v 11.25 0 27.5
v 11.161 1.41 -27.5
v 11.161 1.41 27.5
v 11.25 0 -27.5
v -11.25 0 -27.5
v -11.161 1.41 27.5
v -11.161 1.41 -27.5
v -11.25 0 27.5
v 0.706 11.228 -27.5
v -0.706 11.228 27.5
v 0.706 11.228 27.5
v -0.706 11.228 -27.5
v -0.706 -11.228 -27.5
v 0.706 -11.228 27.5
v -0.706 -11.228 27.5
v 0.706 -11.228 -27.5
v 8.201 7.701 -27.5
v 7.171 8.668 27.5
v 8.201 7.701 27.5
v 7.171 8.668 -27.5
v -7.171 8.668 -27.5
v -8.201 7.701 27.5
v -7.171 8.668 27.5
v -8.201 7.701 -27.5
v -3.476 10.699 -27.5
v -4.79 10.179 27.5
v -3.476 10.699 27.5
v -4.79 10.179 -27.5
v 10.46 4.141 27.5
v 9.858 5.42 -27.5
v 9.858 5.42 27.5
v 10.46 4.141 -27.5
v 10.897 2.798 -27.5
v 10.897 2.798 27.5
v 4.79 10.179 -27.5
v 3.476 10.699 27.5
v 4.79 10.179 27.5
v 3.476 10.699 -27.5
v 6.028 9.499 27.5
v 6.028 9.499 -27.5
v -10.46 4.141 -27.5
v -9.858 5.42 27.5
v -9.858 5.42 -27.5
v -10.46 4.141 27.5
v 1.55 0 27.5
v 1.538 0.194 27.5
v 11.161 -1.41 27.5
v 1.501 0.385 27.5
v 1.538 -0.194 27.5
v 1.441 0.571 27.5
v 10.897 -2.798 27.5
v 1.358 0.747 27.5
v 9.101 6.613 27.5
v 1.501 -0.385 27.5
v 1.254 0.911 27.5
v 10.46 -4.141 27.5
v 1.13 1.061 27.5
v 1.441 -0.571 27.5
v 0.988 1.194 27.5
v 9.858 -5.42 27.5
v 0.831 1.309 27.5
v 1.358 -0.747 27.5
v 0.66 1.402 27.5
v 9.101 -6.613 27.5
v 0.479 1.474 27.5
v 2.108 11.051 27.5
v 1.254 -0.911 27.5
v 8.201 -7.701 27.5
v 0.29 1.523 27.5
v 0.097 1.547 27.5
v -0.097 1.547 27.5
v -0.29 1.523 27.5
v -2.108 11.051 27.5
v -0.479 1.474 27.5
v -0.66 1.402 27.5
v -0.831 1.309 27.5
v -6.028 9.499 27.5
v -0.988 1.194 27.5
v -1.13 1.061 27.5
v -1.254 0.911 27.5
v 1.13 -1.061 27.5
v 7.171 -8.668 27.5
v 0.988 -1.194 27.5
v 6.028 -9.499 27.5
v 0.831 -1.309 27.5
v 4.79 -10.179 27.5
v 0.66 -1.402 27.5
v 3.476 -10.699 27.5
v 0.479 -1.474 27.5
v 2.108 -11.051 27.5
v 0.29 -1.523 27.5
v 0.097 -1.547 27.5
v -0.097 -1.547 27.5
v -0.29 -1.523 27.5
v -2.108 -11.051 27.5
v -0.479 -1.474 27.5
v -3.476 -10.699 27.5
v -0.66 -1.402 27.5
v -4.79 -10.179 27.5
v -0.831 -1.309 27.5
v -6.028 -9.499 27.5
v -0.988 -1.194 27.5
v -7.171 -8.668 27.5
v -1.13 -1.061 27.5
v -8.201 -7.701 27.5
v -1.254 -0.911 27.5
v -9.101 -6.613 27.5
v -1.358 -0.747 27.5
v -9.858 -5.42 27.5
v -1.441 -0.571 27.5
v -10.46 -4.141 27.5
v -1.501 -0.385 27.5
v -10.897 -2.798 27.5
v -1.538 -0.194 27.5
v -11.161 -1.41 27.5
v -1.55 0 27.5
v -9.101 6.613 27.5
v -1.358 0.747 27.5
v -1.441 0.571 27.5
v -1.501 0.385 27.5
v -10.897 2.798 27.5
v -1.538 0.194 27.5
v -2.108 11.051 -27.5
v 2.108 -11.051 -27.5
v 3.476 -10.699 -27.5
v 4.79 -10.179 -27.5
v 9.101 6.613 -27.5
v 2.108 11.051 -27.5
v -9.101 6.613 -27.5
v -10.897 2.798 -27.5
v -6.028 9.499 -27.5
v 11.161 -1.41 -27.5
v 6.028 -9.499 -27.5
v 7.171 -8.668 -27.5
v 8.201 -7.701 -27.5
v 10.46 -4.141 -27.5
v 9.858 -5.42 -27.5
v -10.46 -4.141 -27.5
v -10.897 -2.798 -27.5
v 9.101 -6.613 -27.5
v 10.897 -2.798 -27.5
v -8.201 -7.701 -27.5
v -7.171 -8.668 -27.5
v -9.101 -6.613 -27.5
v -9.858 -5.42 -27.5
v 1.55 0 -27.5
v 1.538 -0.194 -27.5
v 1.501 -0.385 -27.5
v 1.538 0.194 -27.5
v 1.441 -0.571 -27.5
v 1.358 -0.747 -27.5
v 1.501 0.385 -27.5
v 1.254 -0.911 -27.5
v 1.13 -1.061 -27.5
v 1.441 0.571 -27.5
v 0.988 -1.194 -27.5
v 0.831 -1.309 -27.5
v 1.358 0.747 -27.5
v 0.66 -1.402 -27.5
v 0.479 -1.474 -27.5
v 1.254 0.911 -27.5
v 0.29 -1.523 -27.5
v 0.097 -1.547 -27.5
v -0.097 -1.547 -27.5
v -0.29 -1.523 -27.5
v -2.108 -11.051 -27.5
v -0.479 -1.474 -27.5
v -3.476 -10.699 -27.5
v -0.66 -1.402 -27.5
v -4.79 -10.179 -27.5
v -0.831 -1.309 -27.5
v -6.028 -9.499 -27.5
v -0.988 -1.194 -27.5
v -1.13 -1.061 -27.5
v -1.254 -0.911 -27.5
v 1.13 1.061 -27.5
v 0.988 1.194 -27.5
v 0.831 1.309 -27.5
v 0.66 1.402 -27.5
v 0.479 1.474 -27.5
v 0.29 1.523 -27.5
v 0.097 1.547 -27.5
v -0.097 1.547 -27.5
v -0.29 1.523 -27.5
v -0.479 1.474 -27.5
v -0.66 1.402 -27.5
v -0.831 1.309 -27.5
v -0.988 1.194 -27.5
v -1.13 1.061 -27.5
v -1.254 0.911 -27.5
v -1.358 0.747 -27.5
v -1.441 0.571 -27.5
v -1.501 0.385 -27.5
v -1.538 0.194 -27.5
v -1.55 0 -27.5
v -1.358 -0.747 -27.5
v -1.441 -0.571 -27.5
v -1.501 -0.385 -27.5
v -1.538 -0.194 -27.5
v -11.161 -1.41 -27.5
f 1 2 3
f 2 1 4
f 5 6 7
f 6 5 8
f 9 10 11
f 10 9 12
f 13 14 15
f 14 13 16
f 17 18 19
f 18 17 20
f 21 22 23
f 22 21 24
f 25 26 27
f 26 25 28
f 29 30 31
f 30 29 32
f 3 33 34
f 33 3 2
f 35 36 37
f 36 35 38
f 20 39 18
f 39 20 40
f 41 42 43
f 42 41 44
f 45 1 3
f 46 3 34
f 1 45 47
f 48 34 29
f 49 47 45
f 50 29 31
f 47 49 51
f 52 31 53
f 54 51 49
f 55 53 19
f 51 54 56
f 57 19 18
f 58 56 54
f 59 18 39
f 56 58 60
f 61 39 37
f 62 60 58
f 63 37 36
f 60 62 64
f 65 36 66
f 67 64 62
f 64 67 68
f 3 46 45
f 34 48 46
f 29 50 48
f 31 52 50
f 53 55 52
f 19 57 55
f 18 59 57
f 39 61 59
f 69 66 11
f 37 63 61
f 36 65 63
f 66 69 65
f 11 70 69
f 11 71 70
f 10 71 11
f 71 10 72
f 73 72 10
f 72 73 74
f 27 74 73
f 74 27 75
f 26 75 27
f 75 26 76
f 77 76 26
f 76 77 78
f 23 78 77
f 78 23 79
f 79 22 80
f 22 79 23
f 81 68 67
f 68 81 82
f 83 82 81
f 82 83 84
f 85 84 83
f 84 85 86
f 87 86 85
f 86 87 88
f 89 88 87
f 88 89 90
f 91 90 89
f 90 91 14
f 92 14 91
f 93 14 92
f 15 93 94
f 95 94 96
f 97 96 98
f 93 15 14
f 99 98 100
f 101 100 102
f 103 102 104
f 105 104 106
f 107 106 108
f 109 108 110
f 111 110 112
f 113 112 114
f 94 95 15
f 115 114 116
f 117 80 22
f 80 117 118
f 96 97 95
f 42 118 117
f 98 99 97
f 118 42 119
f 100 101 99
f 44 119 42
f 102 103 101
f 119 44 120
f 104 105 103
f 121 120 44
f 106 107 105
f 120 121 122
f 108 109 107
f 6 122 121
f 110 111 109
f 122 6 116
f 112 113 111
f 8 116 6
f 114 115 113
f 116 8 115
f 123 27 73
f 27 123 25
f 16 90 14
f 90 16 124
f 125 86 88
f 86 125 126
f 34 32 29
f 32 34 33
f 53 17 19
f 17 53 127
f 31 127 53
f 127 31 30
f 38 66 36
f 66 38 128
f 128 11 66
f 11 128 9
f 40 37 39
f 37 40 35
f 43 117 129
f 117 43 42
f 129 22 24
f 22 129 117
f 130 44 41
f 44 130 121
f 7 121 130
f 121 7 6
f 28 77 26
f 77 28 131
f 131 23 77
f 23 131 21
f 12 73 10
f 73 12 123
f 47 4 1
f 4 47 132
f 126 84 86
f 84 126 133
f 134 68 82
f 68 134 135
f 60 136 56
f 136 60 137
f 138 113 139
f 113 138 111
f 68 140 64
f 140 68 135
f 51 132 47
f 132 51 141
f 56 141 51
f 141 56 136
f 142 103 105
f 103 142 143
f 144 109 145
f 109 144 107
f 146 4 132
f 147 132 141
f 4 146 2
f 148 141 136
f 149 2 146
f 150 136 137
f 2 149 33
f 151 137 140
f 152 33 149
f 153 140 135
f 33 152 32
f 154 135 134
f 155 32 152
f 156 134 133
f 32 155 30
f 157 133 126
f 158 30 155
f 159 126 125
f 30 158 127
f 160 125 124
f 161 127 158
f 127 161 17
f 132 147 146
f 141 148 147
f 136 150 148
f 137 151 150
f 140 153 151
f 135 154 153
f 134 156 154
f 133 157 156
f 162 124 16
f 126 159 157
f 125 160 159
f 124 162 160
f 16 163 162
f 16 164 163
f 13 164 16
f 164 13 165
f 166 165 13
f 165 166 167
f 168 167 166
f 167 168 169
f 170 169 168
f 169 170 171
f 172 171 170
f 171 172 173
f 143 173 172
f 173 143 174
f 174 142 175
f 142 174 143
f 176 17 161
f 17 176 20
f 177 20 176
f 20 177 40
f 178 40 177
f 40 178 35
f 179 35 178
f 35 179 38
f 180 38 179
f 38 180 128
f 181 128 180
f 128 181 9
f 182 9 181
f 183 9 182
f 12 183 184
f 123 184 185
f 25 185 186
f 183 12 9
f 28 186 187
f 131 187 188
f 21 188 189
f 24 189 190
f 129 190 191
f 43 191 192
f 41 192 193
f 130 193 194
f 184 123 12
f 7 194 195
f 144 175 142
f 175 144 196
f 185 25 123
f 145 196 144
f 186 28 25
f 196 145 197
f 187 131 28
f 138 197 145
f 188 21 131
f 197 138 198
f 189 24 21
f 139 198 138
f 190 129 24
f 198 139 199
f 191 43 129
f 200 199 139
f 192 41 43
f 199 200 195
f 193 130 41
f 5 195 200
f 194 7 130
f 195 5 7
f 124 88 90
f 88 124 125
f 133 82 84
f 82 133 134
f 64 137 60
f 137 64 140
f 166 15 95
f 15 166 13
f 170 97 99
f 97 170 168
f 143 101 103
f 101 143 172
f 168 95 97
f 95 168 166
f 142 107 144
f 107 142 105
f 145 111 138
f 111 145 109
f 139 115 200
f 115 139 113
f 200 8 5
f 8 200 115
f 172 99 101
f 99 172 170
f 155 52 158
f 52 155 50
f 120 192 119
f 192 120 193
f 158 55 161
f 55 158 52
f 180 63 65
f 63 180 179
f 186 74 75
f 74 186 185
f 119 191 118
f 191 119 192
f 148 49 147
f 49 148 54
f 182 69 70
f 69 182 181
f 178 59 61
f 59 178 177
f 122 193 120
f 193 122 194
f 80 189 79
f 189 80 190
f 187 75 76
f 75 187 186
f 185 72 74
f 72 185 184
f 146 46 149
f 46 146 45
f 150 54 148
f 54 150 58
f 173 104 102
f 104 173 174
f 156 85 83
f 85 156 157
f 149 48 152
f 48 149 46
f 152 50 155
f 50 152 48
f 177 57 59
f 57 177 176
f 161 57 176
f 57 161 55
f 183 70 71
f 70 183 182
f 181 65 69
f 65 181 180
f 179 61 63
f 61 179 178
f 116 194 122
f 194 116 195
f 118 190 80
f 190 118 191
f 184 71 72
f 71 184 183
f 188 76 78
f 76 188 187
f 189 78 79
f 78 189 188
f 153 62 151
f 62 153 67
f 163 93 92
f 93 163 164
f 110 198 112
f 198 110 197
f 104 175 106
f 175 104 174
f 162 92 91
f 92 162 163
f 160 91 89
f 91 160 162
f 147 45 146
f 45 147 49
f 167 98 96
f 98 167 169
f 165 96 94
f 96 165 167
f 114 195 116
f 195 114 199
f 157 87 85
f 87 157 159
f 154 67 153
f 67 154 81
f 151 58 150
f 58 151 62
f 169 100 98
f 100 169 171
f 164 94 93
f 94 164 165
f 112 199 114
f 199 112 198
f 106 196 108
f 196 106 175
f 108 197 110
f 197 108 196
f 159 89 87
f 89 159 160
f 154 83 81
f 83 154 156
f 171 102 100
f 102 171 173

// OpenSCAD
$fn = 50;


difference() {
	union() {
		translate(v = [0, 0, -27.5000000000]) {
			cylinder(h = 55, r = 11.2500000000);
		}
	}
	union() {
		translate(v = [0, 0, -100.0000000000]) {
			cylinder(h = 200, r = 1.5500000000);
		}
	}
}
